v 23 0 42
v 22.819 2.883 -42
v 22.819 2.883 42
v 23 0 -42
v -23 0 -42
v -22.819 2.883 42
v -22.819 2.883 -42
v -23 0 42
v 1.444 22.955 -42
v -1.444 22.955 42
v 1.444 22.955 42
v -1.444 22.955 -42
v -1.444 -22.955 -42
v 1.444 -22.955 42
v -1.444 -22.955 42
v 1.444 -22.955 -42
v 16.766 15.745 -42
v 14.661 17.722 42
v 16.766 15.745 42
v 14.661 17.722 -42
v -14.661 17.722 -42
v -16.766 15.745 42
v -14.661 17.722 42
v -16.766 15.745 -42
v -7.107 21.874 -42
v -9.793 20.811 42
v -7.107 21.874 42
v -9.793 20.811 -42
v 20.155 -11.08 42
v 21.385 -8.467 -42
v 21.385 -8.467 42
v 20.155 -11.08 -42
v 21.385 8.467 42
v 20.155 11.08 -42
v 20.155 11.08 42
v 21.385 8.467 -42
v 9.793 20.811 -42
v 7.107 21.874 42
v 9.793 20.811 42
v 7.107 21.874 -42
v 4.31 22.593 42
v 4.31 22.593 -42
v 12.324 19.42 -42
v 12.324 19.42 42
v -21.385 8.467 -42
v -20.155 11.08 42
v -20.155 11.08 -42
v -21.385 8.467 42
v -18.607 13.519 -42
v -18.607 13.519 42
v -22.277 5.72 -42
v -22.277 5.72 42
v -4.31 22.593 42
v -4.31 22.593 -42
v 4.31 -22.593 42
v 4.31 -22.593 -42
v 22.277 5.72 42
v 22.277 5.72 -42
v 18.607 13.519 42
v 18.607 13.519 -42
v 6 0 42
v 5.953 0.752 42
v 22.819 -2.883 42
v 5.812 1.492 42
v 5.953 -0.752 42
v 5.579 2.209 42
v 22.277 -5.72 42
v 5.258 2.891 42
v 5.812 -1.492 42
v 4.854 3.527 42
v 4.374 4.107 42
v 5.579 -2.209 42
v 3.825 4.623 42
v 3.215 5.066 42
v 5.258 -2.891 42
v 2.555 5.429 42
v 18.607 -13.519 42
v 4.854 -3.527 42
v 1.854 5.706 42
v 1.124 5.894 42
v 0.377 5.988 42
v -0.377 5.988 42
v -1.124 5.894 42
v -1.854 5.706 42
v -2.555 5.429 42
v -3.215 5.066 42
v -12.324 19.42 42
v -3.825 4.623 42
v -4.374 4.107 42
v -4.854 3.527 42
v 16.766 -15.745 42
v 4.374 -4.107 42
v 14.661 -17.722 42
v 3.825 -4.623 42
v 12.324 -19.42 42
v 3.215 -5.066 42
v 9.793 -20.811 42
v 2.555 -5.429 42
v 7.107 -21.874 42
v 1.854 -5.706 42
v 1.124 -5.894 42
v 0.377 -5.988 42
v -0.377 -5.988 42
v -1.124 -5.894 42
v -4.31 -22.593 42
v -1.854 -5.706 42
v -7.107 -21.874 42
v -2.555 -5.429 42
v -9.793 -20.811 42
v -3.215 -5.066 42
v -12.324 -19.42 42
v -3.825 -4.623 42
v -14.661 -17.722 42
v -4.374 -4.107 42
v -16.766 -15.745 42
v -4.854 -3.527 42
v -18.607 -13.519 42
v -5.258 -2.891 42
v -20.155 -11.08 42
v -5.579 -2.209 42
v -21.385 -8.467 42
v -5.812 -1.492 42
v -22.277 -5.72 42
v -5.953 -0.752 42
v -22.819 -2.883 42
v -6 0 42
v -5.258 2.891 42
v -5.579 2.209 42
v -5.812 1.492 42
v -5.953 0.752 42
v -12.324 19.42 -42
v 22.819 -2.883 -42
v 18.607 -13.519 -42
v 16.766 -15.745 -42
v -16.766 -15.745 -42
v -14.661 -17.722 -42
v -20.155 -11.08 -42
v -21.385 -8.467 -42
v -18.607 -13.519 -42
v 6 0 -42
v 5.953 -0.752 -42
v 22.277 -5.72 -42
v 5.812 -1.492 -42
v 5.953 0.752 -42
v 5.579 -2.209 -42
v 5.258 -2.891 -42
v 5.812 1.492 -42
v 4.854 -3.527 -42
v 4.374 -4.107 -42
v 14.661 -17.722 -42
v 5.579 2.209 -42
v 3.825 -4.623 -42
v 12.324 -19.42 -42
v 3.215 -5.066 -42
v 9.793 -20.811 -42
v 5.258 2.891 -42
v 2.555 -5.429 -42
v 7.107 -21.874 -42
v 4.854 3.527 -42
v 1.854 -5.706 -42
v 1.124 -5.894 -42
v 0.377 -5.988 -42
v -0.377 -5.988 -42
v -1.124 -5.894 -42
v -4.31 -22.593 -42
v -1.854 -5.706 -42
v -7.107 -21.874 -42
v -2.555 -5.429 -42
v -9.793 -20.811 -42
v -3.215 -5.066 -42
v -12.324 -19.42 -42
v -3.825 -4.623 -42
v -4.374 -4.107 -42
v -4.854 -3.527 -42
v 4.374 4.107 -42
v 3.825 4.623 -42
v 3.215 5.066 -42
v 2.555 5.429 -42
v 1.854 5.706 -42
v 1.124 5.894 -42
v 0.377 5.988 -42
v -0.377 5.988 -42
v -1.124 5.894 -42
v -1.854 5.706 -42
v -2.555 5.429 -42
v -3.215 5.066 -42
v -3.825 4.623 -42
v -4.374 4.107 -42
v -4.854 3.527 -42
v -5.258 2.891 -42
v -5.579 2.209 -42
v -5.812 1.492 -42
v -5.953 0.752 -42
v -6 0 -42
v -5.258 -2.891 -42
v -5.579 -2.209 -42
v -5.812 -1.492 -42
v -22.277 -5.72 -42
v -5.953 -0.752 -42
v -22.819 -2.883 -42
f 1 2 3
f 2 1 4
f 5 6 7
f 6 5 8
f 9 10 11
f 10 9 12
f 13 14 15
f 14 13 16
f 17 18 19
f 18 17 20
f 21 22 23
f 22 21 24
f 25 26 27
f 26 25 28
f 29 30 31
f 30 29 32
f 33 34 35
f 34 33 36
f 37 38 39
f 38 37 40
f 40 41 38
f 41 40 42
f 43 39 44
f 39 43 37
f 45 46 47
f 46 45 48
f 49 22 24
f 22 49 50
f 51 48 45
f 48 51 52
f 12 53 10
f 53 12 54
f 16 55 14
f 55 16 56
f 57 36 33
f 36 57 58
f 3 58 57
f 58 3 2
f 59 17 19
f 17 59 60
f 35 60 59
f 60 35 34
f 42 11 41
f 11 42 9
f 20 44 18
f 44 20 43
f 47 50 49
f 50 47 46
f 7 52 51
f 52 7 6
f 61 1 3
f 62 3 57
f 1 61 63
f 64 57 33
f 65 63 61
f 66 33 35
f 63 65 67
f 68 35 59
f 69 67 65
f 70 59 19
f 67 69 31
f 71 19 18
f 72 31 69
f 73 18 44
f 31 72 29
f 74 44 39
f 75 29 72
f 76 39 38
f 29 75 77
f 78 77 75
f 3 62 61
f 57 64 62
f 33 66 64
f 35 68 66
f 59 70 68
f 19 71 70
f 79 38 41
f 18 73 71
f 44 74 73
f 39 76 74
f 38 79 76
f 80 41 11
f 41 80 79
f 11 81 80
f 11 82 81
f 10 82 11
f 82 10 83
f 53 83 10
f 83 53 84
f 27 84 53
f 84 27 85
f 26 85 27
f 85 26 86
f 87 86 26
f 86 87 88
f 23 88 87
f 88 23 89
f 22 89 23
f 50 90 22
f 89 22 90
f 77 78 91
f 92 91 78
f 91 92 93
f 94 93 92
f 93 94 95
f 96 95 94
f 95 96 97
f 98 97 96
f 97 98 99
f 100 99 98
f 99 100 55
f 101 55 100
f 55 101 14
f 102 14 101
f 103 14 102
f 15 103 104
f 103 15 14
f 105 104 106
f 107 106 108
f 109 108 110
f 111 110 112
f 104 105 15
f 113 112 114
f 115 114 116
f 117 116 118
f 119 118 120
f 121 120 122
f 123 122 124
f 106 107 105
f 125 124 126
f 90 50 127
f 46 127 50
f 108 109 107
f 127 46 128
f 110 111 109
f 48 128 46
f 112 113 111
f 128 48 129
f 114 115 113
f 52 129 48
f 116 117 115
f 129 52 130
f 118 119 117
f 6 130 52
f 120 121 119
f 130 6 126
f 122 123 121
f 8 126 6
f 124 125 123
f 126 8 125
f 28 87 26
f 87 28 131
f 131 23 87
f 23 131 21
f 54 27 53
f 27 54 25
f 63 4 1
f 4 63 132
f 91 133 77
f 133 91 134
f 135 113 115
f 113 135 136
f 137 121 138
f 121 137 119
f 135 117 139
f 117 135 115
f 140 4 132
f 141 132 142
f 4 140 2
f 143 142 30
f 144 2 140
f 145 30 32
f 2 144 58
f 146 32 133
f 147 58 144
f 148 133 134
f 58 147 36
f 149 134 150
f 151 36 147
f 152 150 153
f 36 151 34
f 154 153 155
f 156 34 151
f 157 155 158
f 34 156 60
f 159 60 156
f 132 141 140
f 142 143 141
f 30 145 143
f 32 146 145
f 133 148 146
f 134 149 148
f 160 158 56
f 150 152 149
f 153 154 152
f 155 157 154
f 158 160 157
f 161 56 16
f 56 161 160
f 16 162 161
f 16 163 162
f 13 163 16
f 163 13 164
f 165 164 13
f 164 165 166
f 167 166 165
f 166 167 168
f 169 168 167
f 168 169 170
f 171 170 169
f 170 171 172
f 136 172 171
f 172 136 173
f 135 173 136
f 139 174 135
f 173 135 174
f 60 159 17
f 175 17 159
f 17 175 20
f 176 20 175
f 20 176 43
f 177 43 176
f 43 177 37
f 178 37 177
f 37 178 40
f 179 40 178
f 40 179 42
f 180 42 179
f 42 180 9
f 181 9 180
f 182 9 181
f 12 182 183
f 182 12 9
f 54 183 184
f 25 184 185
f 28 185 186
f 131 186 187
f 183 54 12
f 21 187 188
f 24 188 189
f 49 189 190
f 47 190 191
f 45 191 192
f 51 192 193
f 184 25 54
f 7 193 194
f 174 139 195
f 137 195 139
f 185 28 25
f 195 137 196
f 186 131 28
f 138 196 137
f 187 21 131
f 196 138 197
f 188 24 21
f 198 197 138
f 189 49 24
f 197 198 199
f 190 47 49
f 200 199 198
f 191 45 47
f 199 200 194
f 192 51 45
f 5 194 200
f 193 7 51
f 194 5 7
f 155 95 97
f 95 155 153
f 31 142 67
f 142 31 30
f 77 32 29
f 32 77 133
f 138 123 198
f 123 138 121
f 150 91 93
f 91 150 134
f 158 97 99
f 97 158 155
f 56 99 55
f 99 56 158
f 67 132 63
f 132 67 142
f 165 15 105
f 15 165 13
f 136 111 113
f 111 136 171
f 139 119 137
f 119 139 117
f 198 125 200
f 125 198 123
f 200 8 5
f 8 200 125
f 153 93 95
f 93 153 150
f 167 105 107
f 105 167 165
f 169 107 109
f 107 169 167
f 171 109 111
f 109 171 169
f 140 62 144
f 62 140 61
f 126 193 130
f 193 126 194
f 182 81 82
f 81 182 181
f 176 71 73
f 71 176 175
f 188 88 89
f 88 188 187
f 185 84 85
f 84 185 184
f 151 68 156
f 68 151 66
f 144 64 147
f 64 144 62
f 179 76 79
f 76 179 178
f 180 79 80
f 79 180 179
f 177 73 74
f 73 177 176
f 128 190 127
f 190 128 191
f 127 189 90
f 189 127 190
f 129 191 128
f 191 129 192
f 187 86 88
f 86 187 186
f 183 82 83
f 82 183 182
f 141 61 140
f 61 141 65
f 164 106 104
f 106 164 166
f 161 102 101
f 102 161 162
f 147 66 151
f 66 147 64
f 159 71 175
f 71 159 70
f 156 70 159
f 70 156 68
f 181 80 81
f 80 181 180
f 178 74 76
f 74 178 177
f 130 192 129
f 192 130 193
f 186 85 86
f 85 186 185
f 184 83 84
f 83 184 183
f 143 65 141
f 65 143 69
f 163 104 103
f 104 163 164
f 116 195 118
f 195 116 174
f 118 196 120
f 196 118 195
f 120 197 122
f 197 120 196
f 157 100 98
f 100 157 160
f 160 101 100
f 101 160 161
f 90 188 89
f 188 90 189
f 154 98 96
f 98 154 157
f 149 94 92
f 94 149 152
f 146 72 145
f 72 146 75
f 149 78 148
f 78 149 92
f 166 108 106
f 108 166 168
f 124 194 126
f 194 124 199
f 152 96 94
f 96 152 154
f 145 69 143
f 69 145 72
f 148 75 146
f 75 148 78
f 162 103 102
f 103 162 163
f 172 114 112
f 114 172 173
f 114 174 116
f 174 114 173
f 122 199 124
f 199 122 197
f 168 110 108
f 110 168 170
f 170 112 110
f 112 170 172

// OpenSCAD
$fn = 50;


difference() {
	union() {
		translate(v = [0, 0, -42.0000000000]) {
			cylinder(h = 84, r = 23.0000000000);
		}
	}
	union() {
		translate(v = [0, 0, -100.0000000000]) {
			cylinder(h = 200, r = 6);
		}
	}
}
